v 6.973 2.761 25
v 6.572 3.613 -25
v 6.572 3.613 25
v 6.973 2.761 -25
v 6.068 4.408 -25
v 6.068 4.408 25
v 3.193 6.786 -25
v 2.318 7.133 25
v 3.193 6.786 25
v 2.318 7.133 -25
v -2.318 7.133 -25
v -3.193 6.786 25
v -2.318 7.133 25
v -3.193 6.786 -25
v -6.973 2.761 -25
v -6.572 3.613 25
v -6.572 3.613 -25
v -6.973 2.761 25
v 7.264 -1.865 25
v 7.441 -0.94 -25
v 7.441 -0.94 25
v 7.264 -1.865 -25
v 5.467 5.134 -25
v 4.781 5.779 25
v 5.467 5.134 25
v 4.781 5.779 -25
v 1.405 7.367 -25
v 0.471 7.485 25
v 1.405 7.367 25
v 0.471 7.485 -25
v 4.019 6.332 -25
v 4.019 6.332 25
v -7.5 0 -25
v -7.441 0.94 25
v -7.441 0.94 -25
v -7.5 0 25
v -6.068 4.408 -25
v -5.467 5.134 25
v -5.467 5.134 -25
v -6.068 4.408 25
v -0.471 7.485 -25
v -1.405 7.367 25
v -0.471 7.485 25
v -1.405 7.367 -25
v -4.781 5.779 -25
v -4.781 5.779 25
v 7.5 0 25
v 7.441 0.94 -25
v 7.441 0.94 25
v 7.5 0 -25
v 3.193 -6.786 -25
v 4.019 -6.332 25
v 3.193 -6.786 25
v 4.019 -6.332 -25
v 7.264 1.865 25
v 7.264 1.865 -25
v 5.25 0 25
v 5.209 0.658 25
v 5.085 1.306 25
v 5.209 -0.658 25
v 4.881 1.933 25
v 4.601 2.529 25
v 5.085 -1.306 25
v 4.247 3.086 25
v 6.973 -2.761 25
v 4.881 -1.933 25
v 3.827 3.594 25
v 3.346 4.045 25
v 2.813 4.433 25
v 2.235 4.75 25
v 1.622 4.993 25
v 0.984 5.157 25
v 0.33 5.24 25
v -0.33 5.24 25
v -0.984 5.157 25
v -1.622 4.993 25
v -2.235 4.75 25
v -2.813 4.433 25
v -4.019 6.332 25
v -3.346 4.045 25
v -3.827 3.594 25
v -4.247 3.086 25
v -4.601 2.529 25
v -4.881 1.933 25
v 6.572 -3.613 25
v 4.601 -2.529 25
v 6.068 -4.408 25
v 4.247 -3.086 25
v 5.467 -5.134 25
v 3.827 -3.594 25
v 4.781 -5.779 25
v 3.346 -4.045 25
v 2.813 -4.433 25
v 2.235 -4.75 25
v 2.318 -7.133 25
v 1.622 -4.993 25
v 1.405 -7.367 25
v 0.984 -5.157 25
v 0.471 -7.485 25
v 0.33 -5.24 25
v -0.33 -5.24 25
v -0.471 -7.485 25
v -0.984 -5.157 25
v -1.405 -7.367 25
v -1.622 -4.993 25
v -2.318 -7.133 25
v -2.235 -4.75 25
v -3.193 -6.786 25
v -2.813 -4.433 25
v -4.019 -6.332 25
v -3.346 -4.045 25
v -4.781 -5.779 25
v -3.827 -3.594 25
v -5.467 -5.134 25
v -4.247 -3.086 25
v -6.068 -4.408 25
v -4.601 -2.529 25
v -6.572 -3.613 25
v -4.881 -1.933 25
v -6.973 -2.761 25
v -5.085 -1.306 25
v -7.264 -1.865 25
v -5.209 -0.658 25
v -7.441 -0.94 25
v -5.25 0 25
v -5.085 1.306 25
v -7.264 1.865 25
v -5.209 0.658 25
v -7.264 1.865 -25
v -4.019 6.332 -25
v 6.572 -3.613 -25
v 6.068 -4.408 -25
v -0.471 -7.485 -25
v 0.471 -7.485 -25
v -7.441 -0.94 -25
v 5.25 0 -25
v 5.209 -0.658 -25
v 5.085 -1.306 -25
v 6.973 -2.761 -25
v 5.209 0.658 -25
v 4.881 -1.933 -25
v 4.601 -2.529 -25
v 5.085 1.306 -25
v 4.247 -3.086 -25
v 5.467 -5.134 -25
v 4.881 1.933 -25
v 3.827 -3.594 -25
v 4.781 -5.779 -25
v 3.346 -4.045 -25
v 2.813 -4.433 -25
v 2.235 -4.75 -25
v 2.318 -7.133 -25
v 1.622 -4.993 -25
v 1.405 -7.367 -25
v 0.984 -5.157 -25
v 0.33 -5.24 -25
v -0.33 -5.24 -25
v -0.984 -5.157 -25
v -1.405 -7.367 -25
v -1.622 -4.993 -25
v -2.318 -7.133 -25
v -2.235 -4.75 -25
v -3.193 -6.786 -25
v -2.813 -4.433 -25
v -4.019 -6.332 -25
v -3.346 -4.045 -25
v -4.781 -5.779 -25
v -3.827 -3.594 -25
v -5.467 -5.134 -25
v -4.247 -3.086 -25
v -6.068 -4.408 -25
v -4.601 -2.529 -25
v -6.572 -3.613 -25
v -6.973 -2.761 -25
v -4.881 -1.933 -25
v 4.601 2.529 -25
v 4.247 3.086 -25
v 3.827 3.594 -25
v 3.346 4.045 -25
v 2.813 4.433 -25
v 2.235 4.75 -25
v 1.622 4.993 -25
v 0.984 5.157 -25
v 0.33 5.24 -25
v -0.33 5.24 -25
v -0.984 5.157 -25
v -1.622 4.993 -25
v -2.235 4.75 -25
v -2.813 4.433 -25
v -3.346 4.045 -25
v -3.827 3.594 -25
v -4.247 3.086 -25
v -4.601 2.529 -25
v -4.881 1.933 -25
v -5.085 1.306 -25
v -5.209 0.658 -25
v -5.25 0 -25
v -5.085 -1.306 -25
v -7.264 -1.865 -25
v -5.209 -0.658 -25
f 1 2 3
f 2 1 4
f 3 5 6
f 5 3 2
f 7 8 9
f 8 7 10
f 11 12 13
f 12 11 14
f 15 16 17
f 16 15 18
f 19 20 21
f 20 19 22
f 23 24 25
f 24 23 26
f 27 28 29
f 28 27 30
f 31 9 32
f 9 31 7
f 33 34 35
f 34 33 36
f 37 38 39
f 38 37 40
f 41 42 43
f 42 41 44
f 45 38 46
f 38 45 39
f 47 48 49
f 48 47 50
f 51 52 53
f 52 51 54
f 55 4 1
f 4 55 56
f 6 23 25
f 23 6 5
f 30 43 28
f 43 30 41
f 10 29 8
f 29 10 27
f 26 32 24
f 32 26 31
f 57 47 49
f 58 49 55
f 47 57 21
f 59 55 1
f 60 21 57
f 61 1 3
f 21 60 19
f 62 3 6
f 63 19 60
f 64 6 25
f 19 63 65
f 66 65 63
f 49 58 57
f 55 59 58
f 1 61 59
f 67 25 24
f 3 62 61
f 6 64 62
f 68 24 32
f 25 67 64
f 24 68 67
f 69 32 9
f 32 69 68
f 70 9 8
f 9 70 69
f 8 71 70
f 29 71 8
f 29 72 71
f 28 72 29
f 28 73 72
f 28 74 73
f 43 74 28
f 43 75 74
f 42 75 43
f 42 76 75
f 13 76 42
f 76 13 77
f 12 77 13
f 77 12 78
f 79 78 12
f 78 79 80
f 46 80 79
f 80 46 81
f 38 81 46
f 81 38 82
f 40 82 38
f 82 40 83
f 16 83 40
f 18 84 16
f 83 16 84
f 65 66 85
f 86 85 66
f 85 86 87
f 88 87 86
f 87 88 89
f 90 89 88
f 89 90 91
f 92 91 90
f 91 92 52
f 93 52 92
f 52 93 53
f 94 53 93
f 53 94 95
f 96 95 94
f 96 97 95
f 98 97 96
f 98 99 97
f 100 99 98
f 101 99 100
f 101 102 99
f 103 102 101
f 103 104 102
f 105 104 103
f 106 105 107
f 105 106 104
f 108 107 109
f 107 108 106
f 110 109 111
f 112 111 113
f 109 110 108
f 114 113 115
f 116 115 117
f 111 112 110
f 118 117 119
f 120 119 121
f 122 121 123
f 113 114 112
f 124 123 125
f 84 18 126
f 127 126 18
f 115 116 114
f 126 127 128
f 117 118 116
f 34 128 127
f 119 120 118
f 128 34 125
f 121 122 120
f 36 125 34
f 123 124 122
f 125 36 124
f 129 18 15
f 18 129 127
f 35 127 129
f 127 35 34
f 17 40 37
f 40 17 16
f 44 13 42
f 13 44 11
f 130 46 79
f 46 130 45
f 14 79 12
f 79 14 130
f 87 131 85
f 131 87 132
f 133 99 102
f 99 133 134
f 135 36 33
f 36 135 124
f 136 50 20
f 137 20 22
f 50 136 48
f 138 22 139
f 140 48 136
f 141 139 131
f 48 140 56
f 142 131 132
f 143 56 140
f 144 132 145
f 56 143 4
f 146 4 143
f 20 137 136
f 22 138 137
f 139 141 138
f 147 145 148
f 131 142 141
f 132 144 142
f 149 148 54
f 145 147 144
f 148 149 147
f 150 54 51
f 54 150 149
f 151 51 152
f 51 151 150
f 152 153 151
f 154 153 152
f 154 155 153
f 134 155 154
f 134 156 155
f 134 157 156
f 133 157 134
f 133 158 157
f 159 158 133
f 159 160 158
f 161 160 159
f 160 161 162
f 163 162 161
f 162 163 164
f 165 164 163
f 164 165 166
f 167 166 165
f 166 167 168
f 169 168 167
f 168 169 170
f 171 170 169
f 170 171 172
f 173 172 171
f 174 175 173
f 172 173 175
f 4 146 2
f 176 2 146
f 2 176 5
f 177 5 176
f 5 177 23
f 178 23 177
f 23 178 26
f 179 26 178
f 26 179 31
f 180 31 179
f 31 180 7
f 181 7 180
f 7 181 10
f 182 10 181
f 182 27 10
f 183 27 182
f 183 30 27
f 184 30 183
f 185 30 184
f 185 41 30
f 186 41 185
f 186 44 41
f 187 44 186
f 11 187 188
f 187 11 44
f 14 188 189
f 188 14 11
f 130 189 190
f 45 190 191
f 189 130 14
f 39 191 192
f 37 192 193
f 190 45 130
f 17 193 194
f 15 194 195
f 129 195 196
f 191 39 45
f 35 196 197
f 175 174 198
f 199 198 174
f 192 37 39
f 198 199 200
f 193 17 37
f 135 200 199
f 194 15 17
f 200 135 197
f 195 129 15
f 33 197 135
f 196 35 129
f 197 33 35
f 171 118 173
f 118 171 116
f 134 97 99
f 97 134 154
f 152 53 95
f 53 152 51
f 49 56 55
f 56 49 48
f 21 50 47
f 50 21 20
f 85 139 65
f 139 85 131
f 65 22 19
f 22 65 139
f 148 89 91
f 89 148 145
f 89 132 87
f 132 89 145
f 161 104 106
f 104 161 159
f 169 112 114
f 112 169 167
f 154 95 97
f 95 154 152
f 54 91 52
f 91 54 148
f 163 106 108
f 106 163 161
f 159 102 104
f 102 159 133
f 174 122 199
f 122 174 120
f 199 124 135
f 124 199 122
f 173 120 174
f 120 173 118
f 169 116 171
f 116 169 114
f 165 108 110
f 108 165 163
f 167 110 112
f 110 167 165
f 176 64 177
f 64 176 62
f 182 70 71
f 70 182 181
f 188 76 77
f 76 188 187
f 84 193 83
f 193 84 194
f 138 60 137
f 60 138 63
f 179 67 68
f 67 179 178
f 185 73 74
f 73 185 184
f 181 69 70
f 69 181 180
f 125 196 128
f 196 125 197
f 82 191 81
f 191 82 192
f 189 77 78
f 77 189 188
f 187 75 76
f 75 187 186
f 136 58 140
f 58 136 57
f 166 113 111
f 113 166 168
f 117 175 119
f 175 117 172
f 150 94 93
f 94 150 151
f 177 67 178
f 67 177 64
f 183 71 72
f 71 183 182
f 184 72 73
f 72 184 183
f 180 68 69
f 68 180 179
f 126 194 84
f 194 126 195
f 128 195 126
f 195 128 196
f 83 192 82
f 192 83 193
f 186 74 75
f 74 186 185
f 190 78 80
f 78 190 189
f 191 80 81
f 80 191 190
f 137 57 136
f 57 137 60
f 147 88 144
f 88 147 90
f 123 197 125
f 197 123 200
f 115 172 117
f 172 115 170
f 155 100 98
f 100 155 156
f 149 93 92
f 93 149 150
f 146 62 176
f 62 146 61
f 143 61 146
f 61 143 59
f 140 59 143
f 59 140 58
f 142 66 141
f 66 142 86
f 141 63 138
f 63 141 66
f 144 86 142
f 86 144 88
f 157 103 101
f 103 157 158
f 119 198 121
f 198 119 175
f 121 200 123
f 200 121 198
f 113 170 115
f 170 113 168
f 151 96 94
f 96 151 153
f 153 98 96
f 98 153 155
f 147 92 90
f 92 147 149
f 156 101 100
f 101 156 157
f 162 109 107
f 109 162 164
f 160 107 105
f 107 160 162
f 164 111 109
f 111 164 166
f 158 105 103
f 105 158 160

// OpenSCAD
$fn = 50;


difference() {
	union() {
		translate(v = [0, 0, -25.0000000000]) {
			cylinder(h = 50, r = 7.5000000000);
		}
	}
	union() {
		translate(v = [0, 0, -100.0000000000]) {
			cylinder(h = 200, r = 5.2500000000);
		}
	}
}
